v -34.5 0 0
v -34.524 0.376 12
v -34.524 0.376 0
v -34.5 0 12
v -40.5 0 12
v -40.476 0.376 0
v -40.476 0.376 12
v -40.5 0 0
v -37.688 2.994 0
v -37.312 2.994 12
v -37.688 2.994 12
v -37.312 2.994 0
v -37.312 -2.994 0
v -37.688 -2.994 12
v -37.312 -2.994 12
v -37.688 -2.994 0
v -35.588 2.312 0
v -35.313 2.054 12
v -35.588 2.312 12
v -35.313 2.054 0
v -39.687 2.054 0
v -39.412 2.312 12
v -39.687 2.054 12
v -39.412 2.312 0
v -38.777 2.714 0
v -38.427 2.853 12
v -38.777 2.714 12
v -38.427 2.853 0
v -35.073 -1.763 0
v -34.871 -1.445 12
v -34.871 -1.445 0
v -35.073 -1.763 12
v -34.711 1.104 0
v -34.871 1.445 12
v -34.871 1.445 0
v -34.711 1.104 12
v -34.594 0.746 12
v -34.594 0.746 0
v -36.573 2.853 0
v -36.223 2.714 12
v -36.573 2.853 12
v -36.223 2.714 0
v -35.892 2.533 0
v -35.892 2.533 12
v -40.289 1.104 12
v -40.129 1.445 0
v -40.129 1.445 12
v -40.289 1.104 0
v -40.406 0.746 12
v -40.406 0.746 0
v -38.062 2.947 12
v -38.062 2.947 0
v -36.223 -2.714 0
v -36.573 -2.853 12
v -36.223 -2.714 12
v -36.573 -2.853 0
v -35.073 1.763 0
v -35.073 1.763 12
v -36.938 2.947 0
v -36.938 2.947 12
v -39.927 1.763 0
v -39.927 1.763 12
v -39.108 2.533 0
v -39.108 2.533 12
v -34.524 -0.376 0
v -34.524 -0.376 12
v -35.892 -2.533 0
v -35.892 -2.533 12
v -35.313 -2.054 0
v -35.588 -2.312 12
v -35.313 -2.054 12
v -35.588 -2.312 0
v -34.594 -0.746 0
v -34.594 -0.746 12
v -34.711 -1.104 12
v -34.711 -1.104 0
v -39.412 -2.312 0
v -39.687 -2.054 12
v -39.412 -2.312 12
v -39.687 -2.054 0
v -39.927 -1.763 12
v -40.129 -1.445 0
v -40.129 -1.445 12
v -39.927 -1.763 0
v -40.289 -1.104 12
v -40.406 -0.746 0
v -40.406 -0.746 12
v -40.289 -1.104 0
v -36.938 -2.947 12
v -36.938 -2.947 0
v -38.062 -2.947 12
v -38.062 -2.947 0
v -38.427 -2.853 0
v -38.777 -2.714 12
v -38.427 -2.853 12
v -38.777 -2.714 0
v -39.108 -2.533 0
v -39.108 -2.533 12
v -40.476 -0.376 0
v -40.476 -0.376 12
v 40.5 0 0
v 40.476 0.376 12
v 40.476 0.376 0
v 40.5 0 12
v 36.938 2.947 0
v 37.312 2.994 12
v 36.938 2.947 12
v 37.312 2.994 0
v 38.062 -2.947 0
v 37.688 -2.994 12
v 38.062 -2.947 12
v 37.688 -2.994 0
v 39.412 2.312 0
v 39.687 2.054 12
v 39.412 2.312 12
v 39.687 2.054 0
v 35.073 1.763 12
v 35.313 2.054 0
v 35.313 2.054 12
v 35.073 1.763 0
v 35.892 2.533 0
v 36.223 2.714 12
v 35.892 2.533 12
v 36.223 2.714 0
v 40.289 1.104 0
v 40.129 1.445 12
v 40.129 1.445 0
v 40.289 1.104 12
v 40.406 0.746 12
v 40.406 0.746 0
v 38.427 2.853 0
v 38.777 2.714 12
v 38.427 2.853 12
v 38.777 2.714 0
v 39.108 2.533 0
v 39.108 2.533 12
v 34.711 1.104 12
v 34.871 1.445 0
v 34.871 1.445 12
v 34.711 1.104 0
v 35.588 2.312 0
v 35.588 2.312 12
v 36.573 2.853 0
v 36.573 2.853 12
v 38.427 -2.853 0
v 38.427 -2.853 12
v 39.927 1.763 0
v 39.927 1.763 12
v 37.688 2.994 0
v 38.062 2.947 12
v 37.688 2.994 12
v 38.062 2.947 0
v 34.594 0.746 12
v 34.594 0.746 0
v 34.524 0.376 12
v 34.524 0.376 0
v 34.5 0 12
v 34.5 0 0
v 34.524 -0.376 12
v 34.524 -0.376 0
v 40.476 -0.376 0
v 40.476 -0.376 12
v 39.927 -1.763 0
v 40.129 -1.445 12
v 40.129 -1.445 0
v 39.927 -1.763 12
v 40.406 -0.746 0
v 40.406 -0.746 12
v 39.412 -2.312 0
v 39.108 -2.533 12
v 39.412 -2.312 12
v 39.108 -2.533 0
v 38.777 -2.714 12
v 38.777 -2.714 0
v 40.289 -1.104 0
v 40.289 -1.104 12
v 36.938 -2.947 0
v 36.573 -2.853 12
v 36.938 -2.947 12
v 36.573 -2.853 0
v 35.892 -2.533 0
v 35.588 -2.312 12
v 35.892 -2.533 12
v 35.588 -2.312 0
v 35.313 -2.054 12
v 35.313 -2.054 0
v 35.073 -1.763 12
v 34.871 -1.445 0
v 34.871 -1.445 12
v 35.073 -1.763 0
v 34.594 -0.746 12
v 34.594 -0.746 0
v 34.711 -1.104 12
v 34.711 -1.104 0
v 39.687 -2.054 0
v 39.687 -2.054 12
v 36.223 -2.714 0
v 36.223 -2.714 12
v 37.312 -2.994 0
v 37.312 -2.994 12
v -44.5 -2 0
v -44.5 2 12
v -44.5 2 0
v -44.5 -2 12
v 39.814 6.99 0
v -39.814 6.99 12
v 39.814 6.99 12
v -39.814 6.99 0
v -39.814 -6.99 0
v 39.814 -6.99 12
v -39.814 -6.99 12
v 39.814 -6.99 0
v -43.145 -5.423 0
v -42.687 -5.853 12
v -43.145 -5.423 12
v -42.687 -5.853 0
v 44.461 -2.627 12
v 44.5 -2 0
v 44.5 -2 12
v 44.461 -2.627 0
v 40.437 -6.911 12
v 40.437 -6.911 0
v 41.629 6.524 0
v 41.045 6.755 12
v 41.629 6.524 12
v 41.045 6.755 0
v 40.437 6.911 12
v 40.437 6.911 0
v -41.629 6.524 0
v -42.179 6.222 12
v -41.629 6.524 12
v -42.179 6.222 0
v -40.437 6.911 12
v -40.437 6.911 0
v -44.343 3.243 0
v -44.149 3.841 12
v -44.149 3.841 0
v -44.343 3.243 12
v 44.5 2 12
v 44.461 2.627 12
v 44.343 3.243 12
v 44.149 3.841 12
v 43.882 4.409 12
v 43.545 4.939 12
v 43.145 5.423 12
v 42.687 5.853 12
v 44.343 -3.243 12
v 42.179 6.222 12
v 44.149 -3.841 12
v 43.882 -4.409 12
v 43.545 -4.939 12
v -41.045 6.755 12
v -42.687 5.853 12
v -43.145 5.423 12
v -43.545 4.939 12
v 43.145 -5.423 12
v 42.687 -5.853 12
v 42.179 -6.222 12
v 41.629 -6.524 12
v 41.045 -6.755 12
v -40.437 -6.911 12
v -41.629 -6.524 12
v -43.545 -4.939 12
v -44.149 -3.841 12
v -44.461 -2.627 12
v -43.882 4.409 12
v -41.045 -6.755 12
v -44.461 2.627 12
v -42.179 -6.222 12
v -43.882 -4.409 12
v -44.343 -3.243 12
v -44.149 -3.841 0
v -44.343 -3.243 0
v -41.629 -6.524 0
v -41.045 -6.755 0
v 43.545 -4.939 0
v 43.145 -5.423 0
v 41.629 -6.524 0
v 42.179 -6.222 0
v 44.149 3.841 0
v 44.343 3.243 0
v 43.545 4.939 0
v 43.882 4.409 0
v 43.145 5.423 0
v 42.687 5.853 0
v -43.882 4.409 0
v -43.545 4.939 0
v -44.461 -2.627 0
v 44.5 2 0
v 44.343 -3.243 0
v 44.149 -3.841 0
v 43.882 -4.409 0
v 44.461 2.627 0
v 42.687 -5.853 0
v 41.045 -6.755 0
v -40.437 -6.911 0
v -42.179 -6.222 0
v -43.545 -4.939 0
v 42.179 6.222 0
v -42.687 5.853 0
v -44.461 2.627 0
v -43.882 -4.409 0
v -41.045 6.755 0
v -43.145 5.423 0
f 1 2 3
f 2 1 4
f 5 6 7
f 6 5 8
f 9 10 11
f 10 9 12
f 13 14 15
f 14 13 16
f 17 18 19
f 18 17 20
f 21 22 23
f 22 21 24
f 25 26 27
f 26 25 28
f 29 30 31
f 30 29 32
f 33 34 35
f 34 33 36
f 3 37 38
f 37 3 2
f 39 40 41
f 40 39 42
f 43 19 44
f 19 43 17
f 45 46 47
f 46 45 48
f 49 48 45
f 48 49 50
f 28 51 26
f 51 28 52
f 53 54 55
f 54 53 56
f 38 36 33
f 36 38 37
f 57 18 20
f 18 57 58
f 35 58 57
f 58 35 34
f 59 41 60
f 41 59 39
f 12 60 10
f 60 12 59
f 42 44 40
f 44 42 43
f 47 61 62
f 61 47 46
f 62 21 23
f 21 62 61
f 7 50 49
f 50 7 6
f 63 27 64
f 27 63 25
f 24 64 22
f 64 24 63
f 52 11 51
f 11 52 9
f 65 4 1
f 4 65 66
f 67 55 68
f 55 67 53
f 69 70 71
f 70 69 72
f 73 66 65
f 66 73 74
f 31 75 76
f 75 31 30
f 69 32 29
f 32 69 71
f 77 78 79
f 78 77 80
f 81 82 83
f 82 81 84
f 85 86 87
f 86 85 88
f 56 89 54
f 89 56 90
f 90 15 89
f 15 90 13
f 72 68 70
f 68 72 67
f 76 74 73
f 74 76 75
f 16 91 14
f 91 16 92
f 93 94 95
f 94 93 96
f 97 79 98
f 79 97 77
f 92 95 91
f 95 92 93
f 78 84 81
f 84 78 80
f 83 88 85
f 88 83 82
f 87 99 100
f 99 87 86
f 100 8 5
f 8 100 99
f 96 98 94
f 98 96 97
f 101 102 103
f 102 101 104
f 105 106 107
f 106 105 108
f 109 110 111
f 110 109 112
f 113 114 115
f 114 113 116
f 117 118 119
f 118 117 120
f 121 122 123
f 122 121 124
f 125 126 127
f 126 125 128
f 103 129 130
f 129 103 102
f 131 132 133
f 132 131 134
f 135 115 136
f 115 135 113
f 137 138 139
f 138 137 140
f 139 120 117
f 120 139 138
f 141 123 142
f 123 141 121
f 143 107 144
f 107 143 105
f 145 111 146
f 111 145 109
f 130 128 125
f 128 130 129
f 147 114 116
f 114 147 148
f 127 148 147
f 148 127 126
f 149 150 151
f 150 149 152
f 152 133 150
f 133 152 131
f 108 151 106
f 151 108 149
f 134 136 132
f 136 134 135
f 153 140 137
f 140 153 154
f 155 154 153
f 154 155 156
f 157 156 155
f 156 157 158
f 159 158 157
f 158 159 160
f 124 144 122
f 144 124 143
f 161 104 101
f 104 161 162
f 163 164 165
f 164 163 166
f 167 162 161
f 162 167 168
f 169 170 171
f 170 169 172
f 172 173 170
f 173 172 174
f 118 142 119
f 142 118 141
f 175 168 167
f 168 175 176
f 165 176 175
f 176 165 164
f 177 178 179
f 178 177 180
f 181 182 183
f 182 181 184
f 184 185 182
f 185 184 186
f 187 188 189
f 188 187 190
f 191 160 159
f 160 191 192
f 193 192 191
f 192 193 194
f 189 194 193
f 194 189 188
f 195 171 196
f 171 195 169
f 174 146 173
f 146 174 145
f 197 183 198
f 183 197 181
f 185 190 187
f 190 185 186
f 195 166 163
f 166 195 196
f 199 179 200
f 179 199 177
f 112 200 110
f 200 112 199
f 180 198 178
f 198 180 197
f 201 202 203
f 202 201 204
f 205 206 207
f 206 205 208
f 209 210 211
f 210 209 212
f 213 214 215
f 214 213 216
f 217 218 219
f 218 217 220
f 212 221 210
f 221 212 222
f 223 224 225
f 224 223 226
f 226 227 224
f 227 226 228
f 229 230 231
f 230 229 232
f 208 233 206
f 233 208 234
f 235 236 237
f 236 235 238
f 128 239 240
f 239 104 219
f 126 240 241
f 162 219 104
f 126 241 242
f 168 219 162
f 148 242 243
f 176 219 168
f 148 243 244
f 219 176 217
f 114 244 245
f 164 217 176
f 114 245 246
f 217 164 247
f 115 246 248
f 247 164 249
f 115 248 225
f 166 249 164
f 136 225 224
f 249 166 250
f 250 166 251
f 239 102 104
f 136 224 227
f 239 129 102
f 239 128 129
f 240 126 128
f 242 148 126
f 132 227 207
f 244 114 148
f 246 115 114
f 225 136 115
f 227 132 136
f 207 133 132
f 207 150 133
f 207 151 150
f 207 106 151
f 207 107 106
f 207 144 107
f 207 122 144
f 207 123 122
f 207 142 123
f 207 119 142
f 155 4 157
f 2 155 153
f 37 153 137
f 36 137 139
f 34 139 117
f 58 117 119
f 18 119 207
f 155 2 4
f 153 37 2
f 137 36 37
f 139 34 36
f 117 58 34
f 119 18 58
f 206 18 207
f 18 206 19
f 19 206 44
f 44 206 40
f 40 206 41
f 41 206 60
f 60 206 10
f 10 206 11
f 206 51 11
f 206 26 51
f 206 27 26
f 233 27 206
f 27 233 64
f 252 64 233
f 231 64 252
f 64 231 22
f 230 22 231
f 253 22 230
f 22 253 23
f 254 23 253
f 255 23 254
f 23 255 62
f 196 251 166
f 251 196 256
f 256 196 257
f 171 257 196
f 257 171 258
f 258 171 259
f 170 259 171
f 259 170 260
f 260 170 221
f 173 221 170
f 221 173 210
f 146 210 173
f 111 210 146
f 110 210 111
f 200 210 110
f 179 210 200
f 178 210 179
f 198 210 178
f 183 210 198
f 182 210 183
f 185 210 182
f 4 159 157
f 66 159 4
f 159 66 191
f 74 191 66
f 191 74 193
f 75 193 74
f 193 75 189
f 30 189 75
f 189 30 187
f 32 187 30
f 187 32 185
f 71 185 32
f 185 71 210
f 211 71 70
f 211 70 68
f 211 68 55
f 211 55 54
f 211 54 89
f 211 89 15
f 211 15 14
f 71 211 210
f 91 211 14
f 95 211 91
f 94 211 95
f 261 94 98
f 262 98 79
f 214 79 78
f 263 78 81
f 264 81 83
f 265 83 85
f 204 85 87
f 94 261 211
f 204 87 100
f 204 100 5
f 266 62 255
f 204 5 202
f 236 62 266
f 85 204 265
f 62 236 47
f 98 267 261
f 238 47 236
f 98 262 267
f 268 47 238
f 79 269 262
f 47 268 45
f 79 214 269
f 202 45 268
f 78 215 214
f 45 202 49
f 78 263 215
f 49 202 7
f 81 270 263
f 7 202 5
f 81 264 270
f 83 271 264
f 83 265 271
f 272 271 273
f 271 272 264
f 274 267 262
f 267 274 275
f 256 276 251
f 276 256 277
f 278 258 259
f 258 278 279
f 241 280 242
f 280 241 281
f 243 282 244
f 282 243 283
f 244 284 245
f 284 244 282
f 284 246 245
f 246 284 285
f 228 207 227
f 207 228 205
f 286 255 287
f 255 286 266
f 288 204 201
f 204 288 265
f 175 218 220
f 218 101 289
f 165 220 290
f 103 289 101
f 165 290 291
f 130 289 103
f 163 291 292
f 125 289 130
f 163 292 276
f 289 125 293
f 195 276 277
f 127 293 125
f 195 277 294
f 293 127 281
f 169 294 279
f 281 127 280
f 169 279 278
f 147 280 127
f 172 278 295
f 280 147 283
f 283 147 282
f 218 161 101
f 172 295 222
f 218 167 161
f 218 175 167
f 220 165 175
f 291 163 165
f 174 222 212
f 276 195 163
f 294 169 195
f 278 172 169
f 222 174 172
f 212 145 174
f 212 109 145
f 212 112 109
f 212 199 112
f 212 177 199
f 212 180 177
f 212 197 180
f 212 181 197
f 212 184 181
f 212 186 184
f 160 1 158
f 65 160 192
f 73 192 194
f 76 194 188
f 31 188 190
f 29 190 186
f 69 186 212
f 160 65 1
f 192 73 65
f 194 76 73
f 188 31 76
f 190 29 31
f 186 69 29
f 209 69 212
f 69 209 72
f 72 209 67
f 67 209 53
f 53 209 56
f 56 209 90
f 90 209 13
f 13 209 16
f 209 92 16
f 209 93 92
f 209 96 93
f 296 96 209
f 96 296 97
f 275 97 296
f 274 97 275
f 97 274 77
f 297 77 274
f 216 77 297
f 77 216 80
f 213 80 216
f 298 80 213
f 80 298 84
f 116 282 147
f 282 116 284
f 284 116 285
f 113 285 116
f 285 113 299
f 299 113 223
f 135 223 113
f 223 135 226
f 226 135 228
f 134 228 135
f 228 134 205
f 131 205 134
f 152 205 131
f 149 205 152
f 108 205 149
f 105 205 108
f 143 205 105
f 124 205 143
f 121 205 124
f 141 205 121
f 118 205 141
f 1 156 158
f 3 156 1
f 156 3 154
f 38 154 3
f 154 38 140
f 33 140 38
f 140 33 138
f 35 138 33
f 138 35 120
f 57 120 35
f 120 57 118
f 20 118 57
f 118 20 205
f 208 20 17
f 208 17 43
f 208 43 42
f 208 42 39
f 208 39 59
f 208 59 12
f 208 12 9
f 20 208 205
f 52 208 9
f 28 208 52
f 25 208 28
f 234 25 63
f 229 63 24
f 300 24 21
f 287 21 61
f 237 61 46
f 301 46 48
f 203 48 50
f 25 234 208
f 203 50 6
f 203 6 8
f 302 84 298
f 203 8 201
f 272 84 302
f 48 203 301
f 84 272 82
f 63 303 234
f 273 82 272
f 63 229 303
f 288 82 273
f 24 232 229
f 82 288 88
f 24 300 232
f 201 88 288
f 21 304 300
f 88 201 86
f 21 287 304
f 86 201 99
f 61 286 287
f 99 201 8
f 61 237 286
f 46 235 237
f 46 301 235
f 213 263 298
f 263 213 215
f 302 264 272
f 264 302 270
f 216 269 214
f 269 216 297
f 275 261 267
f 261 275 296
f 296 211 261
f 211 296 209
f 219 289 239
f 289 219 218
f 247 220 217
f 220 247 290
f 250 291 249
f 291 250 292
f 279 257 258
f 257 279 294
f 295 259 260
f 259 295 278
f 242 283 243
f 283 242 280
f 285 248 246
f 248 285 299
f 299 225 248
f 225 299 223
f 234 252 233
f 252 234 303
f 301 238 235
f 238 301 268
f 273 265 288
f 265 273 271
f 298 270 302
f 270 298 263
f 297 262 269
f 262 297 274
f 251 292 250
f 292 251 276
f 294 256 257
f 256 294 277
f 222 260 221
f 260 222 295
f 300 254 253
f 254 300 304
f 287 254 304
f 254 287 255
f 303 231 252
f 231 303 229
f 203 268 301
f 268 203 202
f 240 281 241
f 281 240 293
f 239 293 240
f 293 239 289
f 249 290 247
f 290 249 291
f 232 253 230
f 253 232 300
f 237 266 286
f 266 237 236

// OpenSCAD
$fn = 50;


difference() {
	union() {
		hull() {
			translate(v = [-39.5000000000, 2.0000000000, 0]) {
				cylinder(h = 12, r = 5);
			}
			translate(v = [39.5000000000, 2.0000000000, 0]) {
				cylinder(h = 12, r = 5);
			}
			translate(v = [-39.5000000000, -2.0000000000, 0]) {
				cylinder(h = 12, r = 5);
			}
			translate(v = [39.5000000000, -2.0000000000, 0]) {
				cylinder(h = 12, r = 5);
			}
		}
	}
	union() {
		translate(v = [-37.5000000000, 0.0000000000, -100.0000000000]) {
			cylinder(h = 200, r = 3.0000000000);
		}
		translate(v = [-37.5000000000, 0.0000000000, -100.0000000000]) {
			cylinder(h = 200, r = 3.0000000000);
		}
		translate(v = [37.5000000000, 0.0000000000, -100.0000000000]) {
			cylinder(h = 200, r = 3.0000000000);
		}
		translate(v = [37.5000000000, 0.0000000000, -100.0000000000]) {
			cylinder(h = 200, r = 3.0000000000);
		}
	}
}
